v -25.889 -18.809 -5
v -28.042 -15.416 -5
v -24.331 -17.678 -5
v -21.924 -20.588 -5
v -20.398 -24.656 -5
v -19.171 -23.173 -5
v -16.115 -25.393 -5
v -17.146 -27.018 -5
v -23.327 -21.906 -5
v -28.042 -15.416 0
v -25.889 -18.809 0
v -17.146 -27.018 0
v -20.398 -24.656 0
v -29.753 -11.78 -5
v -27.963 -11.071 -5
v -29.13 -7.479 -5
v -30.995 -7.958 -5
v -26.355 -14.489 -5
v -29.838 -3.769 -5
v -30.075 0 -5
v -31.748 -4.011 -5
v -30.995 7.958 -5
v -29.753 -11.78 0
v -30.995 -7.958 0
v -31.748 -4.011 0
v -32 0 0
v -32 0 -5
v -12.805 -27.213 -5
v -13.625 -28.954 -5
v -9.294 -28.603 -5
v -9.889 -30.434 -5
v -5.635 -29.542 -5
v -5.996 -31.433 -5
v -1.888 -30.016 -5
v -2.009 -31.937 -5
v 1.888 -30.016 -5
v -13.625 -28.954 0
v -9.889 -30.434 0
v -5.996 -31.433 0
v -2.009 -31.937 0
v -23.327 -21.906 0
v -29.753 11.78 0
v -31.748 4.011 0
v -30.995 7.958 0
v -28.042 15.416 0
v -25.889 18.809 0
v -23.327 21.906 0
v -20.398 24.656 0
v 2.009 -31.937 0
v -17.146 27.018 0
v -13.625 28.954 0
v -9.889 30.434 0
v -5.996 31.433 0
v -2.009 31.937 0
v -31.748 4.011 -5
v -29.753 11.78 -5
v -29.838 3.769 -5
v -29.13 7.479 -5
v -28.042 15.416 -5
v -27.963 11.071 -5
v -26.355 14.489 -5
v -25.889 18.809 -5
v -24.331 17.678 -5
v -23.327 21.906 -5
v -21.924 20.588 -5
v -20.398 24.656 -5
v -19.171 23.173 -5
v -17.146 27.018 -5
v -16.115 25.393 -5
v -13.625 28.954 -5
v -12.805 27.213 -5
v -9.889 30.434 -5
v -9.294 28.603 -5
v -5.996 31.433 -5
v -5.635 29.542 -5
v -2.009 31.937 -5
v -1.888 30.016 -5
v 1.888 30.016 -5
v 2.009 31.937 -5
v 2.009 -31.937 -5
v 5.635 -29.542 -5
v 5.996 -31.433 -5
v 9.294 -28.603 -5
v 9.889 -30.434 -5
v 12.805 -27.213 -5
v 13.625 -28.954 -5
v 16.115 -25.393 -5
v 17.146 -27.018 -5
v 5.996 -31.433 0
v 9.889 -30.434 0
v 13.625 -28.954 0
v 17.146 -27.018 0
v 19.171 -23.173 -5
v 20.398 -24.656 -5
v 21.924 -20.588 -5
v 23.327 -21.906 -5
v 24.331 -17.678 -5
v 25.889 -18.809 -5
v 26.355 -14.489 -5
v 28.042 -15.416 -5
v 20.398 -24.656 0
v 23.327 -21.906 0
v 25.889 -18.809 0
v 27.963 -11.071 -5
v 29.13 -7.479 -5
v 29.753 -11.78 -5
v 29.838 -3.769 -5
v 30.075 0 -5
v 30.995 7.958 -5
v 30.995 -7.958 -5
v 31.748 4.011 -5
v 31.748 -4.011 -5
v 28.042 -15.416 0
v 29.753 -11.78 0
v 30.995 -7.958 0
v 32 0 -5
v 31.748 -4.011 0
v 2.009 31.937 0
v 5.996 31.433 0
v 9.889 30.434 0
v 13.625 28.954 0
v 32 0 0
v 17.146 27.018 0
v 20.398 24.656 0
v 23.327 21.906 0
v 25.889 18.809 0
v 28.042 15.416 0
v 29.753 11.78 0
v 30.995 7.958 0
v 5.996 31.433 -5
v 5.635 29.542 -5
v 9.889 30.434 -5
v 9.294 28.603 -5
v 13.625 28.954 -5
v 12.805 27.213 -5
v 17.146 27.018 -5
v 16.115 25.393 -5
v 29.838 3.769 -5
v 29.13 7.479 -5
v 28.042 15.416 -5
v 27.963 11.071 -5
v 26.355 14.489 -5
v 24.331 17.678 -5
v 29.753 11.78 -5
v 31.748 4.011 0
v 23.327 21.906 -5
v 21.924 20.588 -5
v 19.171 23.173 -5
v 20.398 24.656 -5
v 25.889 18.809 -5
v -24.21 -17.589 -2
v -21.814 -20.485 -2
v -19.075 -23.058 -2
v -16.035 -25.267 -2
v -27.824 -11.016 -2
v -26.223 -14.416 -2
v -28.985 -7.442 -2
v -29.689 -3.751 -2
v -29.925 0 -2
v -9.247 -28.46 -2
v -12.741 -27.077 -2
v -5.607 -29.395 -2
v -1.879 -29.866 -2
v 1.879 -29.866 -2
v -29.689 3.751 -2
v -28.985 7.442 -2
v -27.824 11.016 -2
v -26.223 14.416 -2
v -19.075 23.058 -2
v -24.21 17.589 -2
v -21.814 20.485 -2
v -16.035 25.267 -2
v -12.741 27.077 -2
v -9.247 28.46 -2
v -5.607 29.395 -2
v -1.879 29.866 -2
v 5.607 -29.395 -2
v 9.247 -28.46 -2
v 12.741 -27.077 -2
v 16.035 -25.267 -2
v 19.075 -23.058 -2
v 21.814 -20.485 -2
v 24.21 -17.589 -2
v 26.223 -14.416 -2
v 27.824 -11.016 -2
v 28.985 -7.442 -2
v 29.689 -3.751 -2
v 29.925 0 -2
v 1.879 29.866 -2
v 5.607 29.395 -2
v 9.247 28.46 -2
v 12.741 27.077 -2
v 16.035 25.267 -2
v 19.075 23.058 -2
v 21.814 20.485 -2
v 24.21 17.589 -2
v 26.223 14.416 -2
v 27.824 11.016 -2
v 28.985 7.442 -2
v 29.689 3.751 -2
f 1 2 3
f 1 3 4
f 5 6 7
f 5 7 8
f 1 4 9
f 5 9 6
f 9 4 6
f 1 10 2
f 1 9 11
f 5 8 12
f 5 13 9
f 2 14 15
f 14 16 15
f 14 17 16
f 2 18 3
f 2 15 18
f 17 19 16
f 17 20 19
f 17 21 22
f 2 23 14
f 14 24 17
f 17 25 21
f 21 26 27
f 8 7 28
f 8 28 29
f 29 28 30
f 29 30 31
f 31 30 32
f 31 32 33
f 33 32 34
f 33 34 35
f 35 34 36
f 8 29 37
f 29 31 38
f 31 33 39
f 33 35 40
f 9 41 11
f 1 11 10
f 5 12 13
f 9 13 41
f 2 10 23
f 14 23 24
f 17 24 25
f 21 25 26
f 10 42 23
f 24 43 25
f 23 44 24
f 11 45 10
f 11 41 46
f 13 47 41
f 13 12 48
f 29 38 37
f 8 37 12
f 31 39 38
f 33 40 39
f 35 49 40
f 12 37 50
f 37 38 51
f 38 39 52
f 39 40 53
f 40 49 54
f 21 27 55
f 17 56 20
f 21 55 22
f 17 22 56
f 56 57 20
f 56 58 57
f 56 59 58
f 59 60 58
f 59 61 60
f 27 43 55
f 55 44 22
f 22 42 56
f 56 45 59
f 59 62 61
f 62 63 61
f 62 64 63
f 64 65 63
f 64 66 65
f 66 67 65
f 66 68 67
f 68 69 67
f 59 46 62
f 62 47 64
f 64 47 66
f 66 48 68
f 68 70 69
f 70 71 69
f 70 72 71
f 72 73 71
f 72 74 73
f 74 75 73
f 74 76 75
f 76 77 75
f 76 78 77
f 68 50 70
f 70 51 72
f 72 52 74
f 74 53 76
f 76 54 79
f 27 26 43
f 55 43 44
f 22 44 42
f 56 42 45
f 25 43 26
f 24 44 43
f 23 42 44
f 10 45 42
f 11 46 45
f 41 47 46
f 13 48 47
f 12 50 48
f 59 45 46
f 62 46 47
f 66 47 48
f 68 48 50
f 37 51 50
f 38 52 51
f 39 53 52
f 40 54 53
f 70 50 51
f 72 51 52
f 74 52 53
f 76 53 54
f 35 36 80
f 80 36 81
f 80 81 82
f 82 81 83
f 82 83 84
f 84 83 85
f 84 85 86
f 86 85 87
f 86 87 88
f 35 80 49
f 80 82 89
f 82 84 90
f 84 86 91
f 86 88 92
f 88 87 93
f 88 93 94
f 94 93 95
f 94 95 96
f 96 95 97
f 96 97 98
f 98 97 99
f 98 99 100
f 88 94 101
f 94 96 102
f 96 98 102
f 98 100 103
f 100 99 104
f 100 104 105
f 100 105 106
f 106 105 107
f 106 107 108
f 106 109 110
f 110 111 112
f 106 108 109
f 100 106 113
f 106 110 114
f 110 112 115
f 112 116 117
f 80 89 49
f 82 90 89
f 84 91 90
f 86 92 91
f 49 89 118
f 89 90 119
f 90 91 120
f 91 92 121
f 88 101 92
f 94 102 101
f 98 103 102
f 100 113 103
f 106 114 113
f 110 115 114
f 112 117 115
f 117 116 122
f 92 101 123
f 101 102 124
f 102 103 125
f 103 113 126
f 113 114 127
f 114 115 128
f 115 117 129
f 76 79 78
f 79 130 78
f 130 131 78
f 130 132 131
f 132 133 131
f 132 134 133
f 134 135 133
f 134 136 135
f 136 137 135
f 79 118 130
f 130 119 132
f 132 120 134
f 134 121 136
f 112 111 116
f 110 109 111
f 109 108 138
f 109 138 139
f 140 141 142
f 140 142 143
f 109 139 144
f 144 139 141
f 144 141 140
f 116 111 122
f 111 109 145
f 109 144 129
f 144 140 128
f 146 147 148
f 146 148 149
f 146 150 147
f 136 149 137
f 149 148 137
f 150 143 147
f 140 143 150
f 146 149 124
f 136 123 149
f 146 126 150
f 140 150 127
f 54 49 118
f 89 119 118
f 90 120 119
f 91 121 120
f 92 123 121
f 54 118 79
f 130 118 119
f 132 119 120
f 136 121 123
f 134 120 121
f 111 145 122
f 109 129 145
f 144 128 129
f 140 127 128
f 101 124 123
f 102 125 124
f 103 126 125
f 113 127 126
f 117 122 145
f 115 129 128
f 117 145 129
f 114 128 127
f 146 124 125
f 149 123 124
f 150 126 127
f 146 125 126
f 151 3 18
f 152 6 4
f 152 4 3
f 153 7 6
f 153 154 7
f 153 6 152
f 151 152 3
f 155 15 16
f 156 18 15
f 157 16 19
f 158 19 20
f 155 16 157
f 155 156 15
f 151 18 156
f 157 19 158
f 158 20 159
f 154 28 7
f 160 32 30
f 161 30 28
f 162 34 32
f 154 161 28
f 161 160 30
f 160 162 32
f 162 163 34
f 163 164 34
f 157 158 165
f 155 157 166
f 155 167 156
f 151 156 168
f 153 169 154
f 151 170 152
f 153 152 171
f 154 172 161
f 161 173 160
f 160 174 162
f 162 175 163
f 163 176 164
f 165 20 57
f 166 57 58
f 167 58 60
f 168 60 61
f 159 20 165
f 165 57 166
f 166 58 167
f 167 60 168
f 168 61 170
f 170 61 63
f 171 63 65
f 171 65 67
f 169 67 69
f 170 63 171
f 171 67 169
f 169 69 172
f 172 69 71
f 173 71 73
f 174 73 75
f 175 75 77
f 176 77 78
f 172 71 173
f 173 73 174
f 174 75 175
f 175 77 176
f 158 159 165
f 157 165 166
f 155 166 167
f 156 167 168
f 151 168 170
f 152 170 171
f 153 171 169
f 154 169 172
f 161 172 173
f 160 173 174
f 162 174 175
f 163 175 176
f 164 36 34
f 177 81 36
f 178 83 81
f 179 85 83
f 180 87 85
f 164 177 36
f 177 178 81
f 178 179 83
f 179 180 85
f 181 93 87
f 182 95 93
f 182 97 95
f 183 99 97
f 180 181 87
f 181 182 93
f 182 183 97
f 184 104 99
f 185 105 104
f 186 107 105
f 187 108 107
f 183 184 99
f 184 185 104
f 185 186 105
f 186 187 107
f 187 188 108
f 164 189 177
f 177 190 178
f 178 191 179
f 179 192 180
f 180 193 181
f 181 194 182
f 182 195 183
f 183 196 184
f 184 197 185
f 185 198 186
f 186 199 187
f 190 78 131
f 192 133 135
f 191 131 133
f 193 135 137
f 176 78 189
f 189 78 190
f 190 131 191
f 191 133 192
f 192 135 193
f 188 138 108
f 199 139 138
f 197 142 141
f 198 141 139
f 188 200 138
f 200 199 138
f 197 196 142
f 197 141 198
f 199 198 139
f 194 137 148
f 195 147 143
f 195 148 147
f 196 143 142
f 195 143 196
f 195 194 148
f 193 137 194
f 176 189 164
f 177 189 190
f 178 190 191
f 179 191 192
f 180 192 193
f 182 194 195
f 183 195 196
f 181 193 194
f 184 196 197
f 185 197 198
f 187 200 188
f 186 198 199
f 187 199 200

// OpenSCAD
$fn = 50;

difference() {
	union() {
		translate(v = [0, 0, -5.0]) {
			cylinder(h = 5, r = 32.0);
		}
	}
	union() {
		#translate(v = [0, 0, -5.0]) {
			cylinder(h = 3, r1 = 30.075, r2 = 29.925);
		}
	}
}
